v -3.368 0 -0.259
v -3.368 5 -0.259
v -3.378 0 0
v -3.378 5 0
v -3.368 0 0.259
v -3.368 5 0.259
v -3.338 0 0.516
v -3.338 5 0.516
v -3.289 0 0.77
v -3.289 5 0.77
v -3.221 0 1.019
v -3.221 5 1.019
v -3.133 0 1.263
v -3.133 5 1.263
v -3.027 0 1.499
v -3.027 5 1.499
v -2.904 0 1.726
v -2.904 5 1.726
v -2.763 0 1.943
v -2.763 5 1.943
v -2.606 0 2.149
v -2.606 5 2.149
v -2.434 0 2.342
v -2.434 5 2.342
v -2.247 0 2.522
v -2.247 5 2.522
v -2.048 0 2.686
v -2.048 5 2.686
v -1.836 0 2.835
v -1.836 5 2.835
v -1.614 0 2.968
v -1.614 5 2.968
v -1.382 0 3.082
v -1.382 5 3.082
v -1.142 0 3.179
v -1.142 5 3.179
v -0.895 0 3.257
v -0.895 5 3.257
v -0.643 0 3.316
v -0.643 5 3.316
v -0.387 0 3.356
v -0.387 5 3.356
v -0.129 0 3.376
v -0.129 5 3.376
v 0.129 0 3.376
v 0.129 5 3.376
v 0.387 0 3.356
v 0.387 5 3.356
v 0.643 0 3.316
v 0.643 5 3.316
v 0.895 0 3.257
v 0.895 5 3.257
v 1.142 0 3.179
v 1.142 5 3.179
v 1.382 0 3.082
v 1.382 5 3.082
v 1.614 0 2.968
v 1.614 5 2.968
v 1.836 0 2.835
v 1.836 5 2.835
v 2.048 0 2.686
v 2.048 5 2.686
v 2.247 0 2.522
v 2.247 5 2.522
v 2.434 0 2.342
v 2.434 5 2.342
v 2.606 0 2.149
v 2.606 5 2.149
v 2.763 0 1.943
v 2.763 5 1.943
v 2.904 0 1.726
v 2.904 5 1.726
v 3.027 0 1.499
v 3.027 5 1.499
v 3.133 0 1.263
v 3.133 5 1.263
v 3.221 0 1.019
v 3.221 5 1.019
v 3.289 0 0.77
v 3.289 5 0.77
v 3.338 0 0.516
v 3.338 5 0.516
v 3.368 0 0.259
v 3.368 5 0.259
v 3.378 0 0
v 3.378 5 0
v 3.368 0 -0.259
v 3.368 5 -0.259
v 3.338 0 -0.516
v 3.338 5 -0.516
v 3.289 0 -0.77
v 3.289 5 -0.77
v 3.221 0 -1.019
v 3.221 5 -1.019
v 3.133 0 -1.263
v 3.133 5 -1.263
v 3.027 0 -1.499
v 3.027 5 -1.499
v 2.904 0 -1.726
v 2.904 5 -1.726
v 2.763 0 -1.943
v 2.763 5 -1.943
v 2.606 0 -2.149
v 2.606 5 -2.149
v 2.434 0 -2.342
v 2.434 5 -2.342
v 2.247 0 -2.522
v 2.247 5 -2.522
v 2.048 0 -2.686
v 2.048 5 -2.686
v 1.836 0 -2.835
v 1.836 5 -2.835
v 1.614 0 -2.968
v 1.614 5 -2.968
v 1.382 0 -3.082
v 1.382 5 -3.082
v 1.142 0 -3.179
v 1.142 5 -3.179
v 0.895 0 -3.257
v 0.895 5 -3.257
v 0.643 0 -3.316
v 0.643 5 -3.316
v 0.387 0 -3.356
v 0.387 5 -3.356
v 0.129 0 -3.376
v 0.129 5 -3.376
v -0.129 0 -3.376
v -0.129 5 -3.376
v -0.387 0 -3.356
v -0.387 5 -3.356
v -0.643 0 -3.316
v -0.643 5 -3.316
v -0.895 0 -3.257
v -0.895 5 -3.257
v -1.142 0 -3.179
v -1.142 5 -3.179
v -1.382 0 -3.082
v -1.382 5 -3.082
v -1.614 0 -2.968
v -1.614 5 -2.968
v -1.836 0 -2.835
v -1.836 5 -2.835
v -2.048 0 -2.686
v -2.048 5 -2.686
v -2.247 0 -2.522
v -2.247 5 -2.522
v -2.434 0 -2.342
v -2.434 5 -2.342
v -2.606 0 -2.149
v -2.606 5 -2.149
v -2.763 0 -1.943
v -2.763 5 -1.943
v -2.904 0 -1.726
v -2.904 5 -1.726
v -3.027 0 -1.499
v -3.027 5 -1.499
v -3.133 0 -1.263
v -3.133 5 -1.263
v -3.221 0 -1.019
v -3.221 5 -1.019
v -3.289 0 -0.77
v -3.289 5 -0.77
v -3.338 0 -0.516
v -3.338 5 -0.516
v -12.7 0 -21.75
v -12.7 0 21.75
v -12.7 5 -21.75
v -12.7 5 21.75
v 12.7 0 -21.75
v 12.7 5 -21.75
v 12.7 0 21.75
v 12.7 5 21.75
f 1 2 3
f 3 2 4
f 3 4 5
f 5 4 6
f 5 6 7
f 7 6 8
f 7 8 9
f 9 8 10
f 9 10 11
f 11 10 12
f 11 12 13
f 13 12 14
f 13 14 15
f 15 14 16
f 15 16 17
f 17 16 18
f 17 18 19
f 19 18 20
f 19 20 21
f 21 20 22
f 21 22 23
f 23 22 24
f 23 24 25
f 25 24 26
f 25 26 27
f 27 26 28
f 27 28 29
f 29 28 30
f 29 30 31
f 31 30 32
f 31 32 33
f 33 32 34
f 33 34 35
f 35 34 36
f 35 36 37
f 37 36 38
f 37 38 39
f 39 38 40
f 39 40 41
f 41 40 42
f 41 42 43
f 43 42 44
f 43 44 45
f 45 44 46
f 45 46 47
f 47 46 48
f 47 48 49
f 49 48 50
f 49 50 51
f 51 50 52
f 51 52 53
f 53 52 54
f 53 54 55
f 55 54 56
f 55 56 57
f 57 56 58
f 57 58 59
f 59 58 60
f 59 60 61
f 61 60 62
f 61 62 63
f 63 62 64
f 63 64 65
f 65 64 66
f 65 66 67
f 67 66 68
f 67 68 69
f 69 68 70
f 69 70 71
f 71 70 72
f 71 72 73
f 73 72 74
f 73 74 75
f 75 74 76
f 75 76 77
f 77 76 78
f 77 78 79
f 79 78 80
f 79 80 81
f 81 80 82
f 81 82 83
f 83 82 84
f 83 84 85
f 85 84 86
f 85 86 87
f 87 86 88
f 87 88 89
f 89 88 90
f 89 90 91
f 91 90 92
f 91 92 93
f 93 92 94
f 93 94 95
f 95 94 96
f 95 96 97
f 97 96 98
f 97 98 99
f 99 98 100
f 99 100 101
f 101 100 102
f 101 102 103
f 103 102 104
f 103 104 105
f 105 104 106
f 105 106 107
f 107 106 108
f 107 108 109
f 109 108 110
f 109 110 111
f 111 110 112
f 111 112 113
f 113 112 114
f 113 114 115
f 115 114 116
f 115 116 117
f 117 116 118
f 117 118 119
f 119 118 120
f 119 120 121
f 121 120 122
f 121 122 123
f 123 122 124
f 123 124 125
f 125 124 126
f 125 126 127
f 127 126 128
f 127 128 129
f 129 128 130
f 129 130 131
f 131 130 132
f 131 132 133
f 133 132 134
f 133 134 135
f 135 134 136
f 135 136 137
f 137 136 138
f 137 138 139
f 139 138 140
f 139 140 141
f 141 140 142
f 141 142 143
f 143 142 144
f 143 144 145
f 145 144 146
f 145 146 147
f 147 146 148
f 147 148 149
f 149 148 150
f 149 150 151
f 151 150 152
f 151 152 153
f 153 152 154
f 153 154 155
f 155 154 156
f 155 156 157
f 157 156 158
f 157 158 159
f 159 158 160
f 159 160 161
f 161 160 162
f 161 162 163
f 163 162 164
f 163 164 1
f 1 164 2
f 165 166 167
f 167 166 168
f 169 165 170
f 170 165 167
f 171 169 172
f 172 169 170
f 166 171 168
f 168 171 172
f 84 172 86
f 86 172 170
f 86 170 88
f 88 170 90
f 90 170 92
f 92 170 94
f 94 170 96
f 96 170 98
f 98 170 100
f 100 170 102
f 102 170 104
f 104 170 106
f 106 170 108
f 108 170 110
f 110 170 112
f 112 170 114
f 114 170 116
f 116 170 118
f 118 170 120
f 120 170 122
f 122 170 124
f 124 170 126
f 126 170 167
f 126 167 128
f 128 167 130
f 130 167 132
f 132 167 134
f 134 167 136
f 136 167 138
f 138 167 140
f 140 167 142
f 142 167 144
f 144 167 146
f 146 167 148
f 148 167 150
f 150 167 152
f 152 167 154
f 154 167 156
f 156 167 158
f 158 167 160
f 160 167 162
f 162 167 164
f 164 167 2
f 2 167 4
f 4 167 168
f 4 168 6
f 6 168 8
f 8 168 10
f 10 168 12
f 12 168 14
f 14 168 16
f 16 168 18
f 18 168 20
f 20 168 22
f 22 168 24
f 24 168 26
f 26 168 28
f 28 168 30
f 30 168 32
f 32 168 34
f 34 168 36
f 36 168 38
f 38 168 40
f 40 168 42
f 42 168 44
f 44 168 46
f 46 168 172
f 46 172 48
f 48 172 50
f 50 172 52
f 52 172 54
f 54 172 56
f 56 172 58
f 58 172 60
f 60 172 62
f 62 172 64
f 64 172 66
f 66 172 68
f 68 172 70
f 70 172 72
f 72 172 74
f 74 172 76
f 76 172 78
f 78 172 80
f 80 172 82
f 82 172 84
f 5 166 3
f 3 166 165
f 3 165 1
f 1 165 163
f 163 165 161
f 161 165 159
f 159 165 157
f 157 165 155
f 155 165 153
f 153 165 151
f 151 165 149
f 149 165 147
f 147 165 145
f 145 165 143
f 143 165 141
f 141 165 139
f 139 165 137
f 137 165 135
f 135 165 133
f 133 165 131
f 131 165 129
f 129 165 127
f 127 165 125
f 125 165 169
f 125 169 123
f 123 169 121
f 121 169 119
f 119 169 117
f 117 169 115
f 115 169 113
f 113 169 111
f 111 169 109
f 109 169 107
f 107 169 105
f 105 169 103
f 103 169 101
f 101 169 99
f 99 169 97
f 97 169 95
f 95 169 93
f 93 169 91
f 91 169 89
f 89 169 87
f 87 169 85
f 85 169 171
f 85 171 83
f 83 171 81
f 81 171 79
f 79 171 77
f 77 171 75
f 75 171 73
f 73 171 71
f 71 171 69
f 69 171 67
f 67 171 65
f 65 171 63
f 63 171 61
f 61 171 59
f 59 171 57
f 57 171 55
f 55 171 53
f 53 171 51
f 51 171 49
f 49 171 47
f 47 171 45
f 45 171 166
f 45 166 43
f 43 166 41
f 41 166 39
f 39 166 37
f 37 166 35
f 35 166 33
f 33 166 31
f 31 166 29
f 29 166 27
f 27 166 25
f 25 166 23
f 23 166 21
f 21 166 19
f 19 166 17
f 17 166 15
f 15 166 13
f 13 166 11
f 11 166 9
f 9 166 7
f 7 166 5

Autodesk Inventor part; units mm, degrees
ref_plane "YZ Plane" through (0, 0, 0) normal (1, 0, 0) x (0, 1, 0)
ref_plane "XZ Plane" through (0, 0, 0) normal (0, 1, 0) x (-1, 0, 0)
ref_plane "XY Plane" through (0, 0, 0) normal (0, 0, 1) x (1, 0, 0)
sketch "Sketch1" plane through (0, 0, 0) normal (0, 1, 0) x (-1, 0, 0)
  line L0 (12.7, 21.75) -> (-12.7, 21.75)
  line L1 (-12.7, 21.75) -> (-12.7, -21.75)
  line L2 (-12.7, -21.75) -> (12.7, -21.75)
  line L3 (12.7, -21.75) -> (12.7, 21.75)
  line L4 (12.7, 21.75) -> (-12.7, -21.75) construction
  line L5 (-12.7, 21.75) -> (12.7, -21.75) construction
  point P0 (0, 0)
  dimension "d0" = 25.4
  dimension "d1" = 43.5
extrude "Extrusion1" add sketch "Sketch1" along normal blind 5
sketch "Sketch2" plane through (0, 5, 0) normal (0, 1, 0) x (1, 0, 0)
  point P0 (0, 0)
  point P1 (0, 0)
  dimension "d11" = 0
  dimension "d12" = 0
hole "Hole1" at (0, 5, 0) direction (0, -1, 0) diameter 6.756 depth 25.4 clearance for "Flat Head Machine Screw (82)" size "1/4" standard "Ansi Unified Screw Threads"
properties part number "stage_shim"
